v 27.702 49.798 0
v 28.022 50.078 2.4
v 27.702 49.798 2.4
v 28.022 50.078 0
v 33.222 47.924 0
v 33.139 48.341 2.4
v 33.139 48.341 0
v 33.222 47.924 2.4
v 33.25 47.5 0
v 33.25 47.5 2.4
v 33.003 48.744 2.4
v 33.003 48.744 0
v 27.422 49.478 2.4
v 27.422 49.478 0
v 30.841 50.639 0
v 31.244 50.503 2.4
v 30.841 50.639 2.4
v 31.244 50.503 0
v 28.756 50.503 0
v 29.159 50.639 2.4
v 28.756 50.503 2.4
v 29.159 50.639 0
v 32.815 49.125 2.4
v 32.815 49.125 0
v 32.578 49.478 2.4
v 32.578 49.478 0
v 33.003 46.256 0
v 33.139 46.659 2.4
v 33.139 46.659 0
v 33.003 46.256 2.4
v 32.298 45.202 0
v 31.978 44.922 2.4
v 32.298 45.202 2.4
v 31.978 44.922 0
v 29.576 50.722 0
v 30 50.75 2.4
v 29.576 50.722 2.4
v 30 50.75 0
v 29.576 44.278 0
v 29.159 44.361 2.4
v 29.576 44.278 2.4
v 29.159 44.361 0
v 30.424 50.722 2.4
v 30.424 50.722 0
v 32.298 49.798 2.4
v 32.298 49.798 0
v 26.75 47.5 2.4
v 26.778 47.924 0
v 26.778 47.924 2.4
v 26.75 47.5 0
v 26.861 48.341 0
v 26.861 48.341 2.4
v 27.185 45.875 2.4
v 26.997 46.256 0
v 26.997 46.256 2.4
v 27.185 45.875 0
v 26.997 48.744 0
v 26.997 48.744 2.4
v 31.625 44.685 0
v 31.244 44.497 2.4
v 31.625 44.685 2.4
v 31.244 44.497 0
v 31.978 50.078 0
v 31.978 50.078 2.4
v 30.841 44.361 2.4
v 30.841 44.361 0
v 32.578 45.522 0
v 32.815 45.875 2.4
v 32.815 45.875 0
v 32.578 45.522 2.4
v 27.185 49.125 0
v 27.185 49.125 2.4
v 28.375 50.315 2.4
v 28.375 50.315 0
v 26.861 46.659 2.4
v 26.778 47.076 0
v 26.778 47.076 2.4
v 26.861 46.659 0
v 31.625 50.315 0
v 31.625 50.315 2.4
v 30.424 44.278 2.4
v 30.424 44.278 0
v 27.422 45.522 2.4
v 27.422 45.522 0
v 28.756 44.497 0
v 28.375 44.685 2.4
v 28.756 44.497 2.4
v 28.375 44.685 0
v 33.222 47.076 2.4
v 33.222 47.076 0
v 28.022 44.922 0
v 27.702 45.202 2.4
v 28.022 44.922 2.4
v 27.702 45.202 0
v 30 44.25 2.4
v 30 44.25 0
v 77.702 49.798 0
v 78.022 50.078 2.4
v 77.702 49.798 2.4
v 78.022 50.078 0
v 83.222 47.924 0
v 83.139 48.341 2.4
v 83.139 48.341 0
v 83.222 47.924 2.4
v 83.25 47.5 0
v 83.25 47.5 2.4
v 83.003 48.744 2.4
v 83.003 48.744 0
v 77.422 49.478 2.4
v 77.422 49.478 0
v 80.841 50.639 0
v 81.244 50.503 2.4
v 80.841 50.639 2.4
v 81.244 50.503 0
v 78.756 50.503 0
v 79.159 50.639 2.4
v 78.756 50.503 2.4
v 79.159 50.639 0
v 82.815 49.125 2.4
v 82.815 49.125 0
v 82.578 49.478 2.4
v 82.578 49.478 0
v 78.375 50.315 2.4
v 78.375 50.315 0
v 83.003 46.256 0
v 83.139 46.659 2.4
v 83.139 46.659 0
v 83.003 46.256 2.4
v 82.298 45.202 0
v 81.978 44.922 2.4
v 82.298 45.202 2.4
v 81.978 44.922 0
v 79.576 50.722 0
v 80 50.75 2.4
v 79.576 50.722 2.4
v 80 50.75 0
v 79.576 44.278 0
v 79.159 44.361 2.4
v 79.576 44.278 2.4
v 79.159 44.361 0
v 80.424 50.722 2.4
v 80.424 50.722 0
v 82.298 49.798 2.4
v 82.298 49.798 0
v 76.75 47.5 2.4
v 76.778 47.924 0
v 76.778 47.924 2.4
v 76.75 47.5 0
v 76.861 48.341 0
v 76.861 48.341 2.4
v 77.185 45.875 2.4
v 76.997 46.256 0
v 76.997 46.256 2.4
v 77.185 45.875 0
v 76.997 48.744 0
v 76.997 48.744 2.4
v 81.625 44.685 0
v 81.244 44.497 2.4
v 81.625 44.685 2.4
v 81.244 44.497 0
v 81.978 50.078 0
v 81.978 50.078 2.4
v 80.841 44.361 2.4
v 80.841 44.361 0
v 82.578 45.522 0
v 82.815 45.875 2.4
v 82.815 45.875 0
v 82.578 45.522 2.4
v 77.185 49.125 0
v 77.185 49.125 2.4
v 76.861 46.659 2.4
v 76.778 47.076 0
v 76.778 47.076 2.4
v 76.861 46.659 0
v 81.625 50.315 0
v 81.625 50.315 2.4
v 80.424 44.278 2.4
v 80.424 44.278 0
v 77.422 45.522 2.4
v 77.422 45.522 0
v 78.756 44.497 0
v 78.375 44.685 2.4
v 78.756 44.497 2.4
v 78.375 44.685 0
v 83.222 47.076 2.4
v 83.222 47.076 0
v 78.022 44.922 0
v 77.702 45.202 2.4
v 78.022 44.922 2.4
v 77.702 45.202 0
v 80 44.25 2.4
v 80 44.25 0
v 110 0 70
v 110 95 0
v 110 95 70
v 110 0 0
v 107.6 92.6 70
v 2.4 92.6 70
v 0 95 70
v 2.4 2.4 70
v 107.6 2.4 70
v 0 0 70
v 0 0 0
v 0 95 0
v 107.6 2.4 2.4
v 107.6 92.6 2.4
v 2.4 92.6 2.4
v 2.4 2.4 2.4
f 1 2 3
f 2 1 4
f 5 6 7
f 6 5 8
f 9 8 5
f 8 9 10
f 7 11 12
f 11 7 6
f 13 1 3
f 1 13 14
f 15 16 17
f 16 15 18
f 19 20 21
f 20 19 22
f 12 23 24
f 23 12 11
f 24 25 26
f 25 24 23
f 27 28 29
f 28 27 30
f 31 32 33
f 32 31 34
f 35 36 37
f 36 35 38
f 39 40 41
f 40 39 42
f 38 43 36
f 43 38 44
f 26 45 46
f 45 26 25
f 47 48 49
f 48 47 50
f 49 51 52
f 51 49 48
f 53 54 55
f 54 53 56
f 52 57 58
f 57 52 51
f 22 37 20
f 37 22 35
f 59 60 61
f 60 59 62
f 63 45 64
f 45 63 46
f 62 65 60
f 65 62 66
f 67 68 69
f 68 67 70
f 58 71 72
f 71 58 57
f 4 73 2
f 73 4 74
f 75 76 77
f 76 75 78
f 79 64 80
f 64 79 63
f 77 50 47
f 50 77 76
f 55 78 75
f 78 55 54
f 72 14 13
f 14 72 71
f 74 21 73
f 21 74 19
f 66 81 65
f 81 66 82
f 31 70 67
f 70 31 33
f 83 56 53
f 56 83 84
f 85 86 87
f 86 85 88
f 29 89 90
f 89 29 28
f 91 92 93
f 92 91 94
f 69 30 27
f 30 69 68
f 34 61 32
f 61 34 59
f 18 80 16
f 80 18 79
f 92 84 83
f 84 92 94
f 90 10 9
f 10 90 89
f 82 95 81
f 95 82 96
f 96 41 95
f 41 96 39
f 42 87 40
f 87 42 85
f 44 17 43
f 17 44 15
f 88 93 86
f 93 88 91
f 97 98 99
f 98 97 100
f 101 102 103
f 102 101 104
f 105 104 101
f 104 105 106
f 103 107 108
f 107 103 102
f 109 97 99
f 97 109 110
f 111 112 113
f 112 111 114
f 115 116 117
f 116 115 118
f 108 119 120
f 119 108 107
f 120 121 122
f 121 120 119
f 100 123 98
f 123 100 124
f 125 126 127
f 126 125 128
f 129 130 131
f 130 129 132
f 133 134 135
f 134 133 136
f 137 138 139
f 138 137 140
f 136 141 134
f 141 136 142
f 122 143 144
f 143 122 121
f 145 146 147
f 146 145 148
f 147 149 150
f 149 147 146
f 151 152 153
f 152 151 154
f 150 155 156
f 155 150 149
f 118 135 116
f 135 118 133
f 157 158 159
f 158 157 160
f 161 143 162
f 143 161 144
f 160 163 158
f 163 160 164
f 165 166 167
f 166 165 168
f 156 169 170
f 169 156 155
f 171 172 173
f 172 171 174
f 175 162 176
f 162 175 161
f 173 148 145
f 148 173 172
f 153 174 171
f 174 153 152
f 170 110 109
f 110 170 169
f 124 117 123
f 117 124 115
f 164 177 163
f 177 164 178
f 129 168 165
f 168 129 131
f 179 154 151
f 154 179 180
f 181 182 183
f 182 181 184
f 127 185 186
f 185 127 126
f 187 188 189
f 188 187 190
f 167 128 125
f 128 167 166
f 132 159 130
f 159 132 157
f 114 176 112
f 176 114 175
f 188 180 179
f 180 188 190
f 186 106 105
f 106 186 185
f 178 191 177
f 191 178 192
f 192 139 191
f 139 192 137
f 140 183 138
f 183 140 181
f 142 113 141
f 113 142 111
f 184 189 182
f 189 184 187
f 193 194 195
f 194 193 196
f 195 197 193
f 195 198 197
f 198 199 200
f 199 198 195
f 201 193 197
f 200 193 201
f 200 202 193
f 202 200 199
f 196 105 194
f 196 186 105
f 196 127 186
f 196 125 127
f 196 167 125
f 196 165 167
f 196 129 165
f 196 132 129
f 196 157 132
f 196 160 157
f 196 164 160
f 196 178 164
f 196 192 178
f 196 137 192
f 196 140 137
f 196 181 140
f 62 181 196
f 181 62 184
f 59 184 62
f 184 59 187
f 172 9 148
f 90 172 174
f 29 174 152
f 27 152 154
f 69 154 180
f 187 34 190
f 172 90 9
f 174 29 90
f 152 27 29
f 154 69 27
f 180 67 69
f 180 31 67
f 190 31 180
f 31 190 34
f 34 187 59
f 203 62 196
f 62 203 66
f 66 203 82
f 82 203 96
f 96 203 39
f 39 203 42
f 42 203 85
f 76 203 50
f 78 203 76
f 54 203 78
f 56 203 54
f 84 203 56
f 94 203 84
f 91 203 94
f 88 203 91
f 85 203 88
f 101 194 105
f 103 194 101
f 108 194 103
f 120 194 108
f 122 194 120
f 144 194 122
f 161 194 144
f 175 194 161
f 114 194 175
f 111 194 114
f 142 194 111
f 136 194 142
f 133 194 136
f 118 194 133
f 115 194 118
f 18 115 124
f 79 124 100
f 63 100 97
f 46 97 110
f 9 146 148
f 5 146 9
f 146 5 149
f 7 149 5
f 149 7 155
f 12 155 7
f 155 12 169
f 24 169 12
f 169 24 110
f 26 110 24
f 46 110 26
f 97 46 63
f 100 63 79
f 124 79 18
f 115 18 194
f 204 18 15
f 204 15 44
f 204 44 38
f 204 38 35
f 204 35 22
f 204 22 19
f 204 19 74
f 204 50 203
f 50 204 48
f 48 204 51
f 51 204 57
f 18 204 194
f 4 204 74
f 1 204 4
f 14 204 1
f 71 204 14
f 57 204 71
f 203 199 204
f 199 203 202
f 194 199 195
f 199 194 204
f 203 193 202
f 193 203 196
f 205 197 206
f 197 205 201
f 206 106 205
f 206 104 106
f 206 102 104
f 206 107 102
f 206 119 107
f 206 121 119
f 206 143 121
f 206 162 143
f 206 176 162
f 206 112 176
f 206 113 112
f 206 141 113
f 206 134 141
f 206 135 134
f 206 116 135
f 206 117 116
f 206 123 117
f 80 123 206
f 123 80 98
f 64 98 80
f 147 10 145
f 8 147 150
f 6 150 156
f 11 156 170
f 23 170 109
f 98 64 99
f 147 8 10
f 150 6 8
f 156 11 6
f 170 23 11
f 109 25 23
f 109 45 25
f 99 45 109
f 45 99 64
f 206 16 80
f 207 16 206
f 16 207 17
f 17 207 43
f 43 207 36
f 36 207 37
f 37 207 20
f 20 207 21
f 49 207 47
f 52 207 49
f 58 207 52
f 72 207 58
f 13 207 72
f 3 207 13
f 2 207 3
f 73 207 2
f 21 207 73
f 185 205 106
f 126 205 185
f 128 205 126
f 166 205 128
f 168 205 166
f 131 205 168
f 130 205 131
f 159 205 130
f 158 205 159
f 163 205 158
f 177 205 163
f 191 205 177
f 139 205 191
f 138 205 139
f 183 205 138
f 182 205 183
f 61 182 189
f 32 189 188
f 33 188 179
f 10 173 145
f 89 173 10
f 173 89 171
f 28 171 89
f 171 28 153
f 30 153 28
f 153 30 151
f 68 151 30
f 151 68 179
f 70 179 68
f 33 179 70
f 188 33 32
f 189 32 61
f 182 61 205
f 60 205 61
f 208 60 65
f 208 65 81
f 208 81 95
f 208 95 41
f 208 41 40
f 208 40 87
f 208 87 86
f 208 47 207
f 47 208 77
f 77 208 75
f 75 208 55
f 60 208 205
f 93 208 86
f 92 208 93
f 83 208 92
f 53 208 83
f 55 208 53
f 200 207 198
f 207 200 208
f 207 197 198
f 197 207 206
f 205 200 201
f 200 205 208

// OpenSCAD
/* VO DAU MAU, CHI XEM TY LE. KHONG CO NGAM/HORN SERVO, CAN THIET KE THEM.
 * Kich thuoc ngoai 110x95x70; thanh day 2.4 mm.
 * Dat mat phang kin tren ban in, mieng rong huong len tren. Nghi nguoc khi su dung.
 * Hai lo 6.5mm la vi tri du kien cua ang ten, khong danh cho chi tiet chiu luc.
 */
$fn=48;
w=110; d=95; h=70; wall=2.4;
difference(){
 cube([w,d,h]);
 translate([wall,wall,wall]) cube([w-2*wall,d-2*wall,h-wall+.1]);
 for (x=[30,80]) translate([x,d/2,-.1])cylinder(h=wall+.2,d=6.5);
}
